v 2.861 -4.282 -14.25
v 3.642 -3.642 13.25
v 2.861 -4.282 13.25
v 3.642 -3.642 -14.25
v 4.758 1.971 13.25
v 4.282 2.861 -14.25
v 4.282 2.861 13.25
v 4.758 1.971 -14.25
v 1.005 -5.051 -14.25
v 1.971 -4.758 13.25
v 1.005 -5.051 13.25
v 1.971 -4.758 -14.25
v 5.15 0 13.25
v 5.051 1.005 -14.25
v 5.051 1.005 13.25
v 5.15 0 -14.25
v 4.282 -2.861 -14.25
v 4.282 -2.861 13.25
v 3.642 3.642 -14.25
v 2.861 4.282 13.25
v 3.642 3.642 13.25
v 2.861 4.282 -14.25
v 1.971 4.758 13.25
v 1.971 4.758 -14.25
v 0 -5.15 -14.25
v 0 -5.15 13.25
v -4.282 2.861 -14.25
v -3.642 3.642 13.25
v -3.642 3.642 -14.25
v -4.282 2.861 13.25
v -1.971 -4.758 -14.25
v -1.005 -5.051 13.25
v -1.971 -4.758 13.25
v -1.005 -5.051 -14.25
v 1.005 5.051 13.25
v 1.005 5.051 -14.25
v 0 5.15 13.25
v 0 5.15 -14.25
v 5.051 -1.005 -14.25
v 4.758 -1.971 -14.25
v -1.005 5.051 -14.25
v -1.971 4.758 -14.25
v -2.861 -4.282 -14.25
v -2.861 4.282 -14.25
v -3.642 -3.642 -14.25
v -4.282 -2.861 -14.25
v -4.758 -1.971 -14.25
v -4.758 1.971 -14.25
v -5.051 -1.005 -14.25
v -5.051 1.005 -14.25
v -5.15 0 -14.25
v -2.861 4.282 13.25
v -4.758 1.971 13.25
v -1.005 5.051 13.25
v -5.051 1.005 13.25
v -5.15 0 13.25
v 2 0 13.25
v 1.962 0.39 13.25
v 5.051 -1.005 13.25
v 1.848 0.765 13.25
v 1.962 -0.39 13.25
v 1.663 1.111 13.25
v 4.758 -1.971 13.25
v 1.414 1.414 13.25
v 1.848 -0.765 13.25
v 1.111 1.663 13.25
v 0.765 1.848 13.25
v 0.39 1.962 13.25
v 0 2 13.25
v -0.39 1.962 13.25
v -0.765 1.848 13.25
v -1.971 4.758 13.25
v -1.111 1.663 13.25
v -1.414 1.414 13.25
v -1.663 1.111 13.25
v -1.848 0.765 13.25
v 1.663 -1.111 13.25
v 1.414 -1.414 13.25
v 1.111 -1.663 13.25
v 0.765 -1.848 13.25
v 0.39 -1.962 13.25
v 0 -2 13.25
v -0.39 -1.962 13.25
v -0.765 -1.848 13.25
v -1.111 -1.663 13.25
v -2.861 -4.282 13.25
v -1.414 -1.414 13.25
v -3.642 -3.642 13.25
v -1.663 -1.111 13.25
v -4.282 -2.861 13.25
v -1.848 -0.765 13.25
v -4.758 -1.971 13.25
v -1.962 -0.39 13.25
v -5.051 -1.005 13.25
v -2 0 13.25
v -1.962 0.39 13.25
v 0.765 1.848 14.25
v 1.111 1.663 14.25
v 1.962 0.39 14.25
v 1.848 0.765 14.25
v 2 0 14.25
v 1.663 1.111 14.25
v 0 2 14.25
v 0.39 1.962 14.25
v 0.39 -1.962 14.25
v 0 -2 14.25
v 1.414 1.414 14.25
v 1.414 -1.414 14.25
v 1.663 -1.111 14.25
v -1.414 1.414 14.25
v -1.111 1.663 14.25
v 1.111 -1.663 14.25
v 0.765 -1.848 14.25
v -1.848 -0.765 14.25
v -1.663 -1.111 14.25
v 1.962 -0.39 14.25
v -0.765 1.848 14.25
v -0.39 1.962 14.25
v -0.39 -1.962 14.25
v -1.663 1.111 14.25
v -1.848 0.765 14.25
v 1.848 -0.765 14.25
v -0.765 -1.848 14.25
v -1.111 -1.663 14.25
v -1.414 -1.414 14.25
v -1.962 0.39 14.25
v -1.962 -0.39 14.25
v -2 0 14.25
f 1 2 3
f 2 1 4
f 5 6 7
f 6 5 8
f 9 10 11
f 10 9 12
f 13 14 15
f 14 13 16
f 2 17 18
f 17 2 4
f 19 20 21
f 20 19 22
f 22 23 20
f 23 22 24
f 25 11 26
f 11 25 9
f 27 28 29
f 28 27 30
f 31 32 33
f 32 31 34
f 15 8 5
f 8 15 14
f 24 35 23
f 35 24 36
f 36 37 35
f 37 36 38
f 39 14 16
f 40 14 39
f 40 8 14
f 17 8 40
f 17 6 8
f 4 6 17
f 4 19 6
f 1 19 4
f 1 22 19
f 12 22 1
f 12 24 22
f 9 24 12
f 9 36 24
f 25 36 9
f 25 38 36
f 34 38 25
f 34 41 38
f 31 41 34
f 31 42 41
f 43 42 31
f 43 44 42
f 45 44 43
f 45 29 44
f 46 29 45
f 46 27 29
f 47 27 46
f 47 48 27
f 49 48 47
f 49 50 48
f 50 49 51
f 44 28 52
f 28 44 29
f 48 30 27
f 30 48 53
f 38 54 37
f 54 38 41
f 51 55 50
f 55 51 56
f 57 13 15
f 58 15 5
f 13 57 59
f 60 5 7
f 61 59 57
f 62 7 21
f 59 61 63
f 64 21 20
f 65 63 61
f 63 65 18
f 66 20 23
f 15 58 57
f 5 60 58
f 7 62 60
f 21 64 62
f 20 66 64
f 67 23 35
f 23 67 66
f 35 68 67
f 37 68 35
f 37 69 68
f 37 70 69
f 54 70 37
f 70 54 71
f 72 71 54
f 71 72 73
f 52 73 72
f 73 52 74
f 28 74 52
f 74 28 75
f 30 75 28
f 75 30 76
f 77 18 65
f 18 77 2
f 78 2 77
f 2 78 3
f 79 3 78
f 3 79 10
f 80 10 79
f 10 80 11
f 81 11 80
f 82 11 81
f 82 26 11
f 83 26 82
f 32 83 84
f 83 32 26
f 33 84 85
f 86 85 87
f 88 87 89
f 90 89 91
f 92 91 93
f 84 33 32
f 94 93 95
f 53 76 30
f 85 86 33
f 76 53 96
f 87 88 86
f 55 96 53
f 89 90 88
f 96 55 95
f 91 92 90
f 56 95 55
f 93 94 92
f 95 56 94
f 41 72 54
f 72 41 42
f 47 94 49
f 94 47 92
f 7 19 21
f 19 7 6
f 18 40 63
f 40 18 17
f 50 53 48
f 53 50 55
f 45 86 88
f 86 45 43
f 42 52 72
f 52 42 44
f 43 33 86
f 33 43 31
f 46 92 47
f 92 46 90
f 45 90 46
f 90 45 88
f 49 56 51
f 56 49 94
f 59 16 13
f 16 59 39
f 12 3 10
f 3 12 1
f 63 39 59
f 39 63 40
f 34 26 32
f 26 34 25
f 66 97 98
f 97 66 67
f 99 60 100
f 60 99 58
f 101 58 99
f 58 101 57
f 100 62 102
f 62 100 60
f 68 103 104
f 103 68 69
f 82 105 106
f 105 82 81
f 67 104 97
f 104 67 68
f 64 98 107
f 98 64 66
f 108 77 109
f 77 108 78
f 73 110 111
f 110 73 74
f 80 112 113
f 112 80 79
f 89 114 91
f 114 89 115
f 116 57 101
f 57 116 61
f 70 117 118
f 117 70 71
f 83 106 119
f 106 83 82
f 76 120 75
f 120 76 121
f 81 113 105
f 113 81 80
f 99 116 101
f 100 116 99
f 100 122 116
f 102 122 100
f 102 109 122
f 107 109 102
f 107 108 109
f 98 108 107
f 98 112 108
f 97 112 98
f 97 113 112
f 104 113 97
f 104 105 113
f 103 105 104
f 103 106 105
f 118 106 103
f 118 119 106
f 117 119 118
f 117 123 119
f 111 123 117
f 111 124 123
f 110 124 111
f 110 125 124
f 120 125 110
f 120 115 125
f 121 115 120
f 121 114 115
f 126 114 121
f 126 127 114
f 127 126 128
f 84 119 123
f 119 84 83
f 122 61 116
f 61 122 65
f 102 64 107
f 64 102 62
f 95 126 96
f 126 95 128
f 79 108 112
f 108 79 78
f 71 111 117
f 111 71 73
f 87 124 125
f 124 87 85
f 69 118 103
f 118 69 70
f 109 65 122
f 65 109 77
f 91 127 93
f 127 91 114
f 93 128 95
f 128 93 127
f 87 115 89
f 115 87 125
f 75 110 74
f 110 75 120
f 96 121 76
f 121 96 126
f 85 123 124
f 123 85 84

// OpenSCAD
// Units: mm

// --------------------
// Parameters
// --------------------
diameter_mm = 10.3; //[5.15:20.6:0.1]
length_mm = 28.5; //[14.25:57:0.1]
positive_terminal_diameter_mm = 4; //[2:8:0.1]
positive_terminal_height_mm = 1; //[0.5:2:0.1]
negative_terminal_recess_mm = 0; //[0:2.06:0.1]
edge_fillet_radius_mm = 0.3; //[0:1:0.05]  // Not used (fillets avoided)
overlap_mm = 0.8; //[0.5:2:0.1]

body_length_mm = 27.5; //[13.75:55:0.1]  // Derived: length_mm - positive_terminal_height_mm
body_radius_mm = 5.15; //[2.575:10.3:0.05] // Derived: diameter_mm/2
pos_radius_mm = 2; //[1:4:0.05] // Derived: positive_terminal_diameter_mm/2

$fn=32;

// --------------------
// Helpers
// --------------------
module ring2d(ro, ri) {
  difference() {
    circle(r=ro);
    circle(r=ri);
  }
}

// --------------------
// [MANDATORY] Battery - detailed reference geometry
// --------------------
module battery() {
  // Simple but recognizable: main can + positive button + thin top cap ring + optional negative recess
  color([0.78, 0.80, 0.82])  // steel/aluminum can look
  difference() {
    union() {
      // battery_body
      translate([0, 0, -positive_terminal_height_mm/2])
        cylinder(r=body_radius_mm, h=body_length_mm, center=true);

      // positive_terminal_bump
      translate([0, 0, length_mm/2 - positive_terminal_height_mm/2])
        cylinder(r=pos_radius_mm, h=positive_terminal_height_mm, center=true);

      // negative_terminal_flat (overlap to guarantee connectivity)
      translate([0, 0, -length_mm/2 + overlap_mm/2])
        cylinder(r=body_radius_mm, h=overlap_mm, center=true);

      // subtle positive-end cap ring (visual detail, very thin)
      // placed just below the bump on the positive end
      translate([0, 0, length_mm/2 - positive_terminal_height_mm - 0.25])
        linear_extrude(height=0.5, center=true)
          ring2d(ro=body_radius_mm, ri=max(body_radius_mm - 0.35, 0.01));
    }

    // negative_terminal_recess_cutter (0 disables)
    if (negative_terminal_recess_mm > 0)
      translate([0, 0, -length_mm/2 + negative_terminal_recess_mm/2])
        cylinder(r=body_radius_mm*0.6, h=negative_terminal_recess_mm, center=true);
  }

  // Slightly different color for the positive button (often plated)
  color([0.85, 0.83, 0.78])
    translate([0, 0, length_mm/2 - positive_terminal_height_mm/2])
      cylinder(r=pos_radius_mm*0.92, h=positive_terminal_height_mm*0.9, center=true);
}

// --------------------
// Assembly
// --------------------
module assembly() {
  battery();
}

assembly();
